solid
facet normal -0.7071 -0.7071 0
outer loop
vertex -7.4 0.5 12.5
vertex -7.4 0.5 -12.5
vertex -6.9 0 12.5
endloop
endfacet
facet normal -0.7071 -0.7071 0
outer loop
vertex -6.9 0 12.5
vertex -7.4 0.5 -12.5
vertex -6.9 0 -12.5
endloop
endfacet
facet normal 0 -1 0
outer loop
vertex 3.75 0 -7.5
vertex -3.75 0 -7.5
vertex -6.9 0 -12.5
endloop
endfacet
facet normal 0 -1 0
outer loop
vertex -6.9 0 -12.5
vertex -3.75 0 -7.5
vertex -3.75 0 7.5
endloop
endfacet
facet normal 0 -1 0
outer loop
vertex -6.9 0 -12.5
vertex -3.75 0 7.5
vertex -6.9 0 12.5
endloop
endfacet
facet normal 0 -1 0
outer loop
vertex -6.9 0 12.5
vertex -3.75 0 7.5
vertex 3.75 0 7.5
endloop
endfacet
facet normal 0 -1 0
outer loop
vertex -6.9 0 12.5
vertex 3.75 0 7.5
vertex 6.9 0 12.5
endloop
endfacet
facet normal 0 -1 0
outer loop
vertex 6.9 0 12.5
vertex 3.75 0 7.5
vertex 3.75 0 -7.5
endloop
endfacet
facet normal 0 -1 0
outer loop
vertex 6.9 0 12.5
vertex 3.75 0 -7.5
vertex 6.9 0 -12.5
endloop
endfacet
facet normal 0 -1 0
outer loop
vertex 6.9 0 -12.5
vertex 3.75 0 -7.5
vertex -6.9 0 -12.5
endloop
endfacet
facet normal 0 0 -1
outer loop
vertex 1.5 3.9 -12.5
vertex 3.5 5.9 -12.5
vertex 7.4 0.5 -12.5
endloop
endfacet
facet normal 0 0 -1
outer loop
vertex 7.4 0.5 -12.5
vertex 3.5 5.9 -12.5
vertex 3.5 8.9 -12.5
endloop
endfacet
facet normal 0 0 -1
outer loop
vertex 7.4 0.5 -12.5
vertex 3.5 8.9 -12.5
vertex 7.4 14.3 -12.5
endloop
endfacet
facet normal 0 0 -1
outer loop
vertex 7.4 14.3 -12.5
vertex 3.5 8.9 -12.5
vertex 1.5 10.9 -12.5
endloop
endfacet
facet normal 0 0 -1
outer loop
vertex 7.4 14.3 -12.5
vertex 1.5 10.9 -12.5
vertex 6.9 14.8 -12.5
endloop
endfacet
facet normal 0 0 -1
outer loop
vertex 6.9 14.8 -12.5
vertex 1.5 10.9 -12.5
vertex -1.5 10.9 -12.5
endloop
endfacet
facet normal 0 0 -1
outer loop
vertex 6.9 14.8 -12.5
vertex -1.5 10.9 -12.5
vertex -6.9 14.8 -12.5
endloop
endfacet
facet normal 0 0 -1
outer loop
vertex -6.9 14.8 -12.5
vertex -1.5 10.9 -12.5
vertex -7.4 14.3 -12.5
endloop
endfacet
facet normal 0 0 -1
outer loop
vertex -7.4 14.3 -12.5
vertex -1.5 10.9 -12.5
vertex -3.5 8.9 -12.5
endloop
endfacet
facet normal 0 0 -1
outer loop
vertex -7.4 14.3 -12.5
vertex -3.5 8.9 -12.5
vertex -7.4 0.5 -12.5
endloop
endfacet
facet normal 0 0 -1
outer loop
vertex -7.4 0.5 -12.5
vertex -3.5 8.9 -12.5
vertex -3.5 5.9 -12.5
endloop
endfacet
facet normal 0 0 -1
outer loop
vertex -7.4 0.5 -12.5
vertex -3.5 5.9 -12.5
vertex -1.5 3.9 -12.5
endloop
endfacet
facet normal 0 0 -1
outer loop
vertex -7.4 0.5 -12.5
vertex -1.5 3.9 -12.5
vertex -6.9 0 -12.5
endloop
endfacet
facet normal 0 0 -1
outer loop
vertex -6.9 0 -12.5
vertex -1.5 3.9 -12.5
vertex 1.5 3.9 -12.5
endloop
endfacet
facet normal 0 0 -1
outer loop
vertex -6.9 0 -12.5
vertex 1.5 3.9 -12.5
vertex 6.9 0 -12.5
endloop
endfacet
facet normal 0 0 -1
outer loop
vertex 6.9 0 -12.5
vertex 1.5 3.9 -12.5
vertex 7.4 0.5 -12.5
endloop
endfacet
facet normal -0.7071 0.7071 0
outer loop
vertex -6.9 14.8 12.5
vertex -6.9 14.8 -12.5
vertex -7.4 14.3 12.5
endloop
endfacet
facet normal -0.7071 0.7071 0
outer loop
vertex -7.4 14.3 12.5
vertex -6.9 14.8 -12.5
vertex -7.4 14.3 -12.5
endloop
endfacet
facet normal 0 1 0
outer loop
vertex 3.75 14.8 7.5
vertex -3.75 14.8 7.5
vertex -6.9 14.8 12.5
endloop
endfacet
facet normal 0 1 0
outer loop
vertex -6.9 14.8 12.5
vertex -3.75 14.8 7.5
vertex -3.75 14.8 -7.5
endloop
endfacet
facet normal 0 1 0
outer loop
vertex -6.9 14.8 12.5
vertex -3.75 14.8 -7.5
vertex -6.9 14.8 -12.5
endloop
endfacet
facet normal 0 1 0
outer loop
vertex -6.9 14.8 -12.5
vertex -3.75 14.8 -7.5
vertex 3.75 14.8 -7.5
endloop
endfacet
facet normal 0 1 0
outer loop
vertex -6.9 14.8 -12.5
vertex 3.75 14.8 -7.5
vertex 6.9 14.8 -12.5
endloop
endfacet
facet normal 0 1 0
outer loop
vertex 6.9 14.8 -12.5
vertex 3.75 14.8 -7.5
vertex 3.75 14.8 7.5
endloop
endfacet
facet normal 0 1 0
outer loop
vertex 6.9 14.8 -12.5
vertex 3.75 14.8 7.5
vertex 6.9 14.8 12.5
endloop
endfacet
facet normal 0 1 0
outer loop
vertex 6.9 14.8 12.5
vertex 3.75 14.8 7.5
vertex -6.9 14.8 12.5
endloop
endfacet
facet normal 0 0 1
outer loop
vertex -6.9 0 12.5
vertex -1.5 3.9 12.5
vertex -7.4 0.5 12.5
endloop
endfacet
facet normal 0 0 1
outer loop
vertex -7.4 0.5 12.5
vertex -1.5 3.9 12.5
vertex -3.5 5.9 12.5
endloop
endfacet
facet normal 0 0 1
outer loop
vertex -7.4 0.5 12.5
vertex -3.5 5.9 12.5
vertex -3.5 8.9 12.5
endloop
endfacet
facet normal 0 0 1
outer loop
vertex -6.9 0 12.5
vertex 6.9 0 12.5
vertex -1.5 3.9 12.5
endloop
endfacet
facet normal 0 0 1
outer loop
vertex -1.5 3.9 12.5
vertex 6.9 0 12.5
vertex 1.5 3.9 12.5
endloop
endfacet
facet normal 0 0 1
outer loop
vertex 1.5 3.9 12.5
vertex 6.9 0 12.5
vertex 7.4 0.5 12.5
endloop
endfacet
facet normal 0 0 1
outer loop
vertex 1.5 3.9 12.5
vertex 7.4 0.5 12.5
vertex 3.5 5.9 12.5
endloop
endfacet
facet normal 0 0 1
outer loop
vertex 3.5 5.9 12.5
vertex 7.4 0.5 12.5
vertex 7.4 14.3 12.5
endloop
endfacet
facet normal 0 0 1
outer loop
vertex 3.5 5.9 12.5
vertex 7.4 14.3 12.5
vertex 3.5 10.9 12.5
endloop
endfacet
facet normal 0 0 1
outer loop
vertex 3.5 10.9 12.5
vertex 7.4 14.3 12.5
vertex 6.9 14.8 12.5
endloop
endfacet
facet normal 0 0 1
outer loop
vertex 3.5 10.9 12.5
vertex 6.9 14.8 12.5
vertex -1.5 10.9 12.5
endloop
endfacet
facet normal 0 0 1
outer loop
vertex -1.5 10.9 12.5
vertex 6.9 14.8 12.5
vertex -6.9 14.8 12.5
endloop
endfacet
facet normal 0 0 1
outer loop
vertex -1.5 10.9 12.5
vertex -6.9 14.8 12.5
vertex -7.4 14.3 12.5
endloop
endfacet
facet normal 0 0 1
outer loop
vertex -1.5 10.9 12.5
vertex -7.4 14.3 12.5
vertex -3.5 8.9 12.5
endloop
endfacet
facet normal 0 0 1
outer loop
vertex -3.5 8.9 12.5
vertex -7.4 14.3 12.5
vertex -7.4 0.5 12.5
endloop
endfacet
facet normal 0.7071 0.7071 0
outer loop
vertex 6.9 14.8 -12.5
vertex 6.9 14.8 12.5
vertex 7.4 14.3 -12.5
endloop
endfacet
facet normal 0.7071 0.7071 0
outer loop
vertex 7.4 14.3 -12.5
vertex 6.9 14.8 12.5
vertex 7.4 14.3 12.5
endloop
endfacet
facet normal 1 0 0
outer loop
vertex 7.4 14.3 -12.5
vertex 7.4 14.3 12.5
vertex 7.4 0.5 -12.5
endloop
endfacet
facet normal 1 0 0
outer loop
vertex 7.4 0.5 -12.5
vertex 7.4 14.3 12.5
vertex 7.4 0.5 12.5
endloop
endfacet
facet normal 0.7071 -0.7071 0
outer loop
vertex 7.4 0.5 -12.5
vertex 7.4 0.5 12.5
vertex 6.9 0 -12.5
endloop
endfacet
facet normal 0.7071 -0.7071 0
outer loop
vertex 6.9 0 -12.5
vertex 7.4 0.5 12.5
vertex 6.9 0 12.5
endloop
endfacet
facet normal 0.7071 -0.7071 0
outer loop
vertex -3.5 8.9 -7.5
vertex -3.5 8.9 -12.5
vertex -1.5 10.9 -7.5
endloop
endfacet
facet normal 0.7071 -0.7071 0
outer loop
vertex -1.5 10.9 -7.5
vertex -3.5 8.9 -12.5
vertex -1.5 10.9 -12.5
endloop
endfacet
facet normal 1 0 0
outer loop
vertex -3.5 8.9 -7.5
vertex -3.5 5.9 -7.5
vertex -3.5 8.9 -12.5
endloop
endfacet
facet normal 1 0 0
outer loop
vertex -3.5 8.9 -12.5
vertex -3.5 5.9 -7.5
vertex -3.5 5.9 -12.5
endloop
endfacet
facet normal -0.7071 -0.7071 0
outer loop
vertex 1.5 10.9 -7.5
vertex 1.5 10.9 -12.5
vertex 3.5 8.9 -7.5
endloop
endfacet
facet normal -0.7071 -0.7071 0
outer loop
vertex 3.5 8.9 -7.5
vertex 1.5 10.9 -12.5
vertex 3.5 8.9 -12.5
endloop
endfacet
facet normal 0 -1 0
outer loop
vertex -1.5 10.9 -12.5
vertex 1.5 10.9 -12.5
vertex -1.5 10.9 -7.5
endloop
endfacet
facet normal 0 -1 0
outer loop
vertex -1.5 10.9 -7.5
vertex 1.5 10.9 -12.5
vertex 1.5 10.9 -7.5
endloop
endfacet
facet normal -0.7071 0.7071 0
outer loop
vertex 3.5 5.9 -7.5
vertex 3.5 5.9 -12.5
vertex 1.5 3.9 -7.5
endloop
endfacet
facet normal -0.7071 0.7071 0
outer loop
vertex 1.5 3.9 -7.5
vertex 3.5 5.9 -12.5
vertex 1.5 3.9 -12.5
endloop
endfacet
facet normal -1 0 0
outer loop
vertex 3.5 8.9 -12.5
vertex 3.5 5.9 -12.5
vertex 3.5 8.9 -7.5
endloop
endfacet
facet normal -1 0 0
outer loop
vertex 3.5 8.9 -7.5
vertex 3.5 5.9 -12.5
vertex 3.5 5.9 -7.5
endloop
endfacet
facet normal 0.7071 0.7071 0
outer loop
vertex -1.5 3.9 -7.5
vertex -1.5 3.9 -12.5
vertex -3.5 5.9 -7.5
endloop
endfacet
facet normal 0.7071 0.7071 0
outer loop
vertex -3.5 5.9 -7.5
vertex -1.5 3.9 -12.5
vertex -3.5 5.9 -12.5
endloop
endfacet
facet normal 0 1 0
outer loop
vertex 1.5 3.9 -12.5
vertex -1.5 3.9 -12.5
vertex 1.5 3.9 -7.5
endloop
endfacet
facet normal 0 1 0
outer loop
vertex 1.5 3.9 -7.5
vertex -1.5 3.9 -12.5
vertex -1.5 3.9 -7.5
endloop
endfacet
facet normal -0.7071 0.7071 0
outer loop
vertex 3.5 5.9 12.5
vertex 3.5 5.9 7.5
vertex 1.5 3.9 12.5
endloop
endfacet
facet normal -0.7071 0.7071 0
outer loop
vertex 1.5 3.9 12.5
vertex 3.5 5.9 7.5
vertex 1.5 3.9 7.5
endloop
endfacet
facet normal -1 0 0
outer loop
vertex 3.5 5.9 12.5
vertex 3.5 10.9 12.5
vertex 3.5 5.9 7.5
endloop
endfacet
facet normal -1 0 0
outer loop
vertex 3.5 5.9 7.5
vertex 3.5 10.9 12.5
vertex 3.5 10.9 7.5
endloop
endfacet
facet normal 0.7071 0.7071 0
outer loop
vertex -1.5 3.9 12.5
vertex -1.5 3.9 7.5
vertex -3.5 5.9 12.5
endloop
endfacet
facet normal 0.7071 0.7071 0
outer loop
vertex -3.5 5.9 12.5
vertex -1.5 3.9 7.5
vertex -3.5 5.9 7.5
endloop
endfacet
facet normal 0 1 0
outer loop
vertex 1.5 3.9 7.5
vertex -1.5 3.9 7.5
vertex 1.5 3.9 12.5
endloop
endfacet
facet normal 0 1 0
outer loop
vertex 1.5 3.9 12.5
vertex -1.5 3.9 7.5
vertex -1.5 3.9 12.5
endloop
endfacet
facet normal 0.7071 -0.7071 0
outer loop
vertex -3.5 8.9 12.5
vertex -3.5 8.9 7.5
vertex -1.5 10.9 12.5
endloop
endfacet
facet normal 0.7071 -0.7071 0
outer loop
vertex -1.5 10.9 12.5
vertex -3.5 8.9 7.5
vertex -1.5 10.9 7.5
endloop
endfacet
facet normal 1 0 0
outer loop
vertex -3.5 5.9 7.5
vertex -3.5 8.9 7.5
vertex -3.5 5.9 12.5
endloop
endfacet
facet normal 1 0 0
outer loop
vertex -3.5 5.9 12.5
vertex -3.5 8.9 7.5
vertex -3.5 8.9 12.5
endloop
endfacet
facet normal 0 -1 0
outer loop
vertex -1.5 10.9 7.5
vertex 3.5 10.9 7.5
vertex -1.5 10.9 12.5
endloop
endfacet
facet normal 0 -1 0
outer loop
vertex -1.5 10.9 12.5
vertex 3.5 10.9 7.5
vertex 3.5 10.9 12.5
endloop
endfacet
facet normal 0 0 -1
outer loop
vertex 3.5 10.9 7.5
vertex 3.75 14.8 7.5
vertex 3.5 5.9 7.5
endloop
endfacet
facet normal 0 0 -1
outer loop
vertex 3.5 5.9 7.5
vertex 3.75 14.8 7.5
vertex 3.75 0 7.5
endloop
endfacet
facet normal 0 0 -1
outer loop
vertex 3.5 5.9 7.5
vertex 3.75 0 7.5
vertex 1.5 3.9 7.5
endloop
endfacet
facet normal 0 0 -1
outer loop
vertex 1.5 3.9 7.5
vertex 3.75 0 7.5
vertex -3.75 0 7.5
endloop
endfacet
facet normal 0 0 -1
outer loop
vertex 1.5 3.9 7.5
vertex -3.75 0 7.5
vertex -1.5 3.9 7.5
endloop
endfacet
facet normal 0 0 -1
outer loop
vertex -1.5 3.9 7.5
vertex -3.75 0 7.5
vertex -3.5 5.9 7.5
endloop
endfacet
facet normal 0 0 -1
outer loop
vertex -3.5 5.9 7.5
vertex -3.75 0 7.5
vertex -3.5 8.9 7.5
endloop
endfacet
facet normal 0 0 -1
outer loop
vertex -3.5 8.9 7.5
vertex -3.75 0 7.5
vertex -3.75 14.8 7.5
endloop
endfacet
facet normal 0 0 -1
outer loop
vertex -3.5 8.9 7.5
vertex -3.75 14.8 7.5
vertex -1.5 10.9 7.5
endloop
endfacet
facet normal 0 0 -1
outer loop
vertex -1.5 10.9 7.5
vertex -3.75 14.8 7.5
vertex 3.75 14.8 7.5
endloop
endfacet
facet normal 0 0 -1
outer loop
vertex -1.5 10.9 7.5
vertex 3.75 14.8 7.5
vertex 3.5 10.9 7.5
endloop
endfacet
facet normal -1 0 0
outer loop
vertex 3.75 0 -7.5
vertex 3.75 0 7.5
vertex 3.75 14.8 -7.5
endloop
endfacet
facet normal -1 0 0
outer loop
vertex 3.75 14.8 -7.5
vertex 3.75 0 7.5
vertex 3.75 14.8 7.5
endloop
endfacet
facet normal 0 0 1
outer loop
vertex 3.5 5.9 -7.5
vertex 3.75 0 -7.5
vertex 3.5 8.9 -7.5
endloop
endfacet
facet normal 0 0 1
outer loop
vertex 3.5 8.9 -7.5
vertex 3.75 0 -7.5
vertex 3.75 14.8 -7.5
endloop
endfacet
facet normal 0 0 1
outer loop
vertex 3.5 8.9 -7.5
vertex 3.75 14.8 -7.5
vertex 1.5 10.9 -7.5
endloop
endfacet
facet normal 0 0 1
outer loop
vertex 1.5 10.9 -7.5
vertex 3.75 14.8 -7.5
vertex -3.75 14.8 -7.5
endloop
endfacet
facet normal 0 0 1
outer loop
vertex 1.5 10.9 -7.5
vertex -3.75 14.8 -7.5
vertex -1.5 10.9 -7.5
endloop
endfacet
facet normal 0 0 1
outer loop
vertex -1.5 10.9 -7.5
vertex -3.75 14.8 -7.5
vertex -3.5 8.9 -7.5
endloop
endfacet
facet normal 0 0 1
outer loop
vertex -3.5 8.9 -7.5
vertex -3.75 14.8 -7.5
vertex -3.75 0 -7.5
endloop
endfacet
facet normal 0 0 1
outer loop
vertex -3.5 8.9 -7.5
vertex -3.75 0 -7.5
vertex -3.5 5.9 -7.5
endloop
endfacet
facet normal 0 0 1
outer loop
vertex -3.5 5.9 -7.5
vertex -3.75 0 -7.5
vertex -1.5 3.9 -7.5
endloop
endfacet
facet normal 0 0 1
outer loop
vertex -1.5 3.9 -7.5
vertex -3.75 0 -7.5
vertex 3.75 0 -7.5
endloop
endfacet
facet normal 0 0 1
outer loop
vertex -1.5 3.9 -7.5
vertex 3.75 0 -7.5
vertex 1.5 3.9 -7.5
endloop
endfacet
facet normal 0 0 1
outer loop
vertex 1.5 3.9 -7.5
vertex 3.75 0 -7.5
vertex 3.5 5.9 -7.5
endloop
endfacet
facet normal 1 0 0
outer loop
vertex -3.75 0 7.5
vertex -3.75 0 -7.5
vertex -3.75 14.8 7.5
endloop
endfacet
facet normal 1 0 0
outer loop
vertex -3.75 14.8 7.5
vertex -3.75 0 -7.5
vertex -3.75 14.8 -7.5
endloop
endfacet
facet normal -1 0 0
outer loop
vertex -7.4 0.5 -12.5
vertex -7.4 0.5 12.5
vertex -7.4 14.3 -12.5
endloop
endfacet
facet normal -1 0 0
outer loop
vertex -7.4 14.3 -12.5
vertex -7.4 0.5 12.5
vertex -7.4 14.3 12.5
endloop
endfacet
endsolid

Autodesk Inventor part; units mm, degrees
ref_plane "YZ Plane" through (0, 0, 0) normal (1, 0, 0) x (0, 1, 0)
ref_plane "XZ Plane" through (0, 0, 0) normal (0, 1, 0) x (-1, 0, 0)
ref_plane "XY Plane" through (0, 0, 0) normal (0, 0, 1) x (1, 0, 0)
sketch "Sketch1" plane through (0, 0, 0) normal (0, 1, 0) x (-1, 0, 0)
  line L0 (7.4, 12.5) -> (-7.4, 12.5)
  line L1 (-7.4, 12.5) -> (-7.4, -12.5)
  line L2 (-7.4, -12.5) -> (7.4, -12.5)
  line L3 (7.4, -12.5) -> (7.4, 12.5)
  line L4 (3.75, 7.5) -> (-3.75, 7.5)
  line L5 (-3.75, 7.5) -> (-3.75, -7.5)
  line L6 (-3.75, -7.5) -> (3.75, -7.5)
  line L7 (3.75, -7.5) -> (3.75, 7.5)
  point P0 (0, 0)
  dimension "d0" = 14.8
  dimension "d1" = 25
  dimension "d2" = 12.5
  dimension "d3" = 7.4
  dimension "d4" = 7.5
  dimension "d5" = 15
  dimension "d6" = 3.75
  dimension "d7" = 7.5
extrude "Extrusion1" add sketch "Sketch1" along normal blind 14.8
sketch "Sketch2" plane through (-7.4, 0, 12.5) normal (0, 0, 1) x (1, 0, 0)
  line L0 (3.9, 10.9) -> (10.9, 10.9)
  line L1 (10.9, 10.9) -> (10.9, 3.9)
  line L2 (10.9, 3.9) -> (3.9, 3.9)
  line L3 (3.9, 3.9) -> (3.9, 10.9)
  line L4 (0, 0) -> (14.8, 0) projected
  line L5 (14.8, 0) -> (14.8, 14.8) projected
  point P0 (7.4, 0)
  point P1 (7.4, 0)
  point P2 (7.4, 3.9)
  point P3 (14.8, 7.4)
  point P4 (10.9, 7.4)
  dimension "d10" = 7
  dimension "d11" = 7
  dimension "d12" = 0
  dimension "d13" = 0
extrude "Extrusion2" cut sketch "Sketch2" against normal through all
chamfer "Chamfer1" distance 2 angle 45 7 edges at (-3.5, 10.9, 10) (-3.5, 3.9, 10) (3.5, 3.9, 10) (-3.5, 3.9, -10) (3.5, 3.9, -10) (3.5, 10.9, -10) (-3.5, 10.9, -10)
chamfer "Chamfer2" distance 0.5 angle 45 4 edges at (7.4, 0, 0) (7.4, 14.8, 0) (-7.4, 14.8, 0) (-7.4, 0, 0)
equation "\"d2\" = 0.5 * d1"
equation "\"d3\" = 0.5 * d0"
equation "\"d6\" = 0.5 * d4"
equation "\"d7\" = 0.5 * d5"
properties part number "Test Square"
